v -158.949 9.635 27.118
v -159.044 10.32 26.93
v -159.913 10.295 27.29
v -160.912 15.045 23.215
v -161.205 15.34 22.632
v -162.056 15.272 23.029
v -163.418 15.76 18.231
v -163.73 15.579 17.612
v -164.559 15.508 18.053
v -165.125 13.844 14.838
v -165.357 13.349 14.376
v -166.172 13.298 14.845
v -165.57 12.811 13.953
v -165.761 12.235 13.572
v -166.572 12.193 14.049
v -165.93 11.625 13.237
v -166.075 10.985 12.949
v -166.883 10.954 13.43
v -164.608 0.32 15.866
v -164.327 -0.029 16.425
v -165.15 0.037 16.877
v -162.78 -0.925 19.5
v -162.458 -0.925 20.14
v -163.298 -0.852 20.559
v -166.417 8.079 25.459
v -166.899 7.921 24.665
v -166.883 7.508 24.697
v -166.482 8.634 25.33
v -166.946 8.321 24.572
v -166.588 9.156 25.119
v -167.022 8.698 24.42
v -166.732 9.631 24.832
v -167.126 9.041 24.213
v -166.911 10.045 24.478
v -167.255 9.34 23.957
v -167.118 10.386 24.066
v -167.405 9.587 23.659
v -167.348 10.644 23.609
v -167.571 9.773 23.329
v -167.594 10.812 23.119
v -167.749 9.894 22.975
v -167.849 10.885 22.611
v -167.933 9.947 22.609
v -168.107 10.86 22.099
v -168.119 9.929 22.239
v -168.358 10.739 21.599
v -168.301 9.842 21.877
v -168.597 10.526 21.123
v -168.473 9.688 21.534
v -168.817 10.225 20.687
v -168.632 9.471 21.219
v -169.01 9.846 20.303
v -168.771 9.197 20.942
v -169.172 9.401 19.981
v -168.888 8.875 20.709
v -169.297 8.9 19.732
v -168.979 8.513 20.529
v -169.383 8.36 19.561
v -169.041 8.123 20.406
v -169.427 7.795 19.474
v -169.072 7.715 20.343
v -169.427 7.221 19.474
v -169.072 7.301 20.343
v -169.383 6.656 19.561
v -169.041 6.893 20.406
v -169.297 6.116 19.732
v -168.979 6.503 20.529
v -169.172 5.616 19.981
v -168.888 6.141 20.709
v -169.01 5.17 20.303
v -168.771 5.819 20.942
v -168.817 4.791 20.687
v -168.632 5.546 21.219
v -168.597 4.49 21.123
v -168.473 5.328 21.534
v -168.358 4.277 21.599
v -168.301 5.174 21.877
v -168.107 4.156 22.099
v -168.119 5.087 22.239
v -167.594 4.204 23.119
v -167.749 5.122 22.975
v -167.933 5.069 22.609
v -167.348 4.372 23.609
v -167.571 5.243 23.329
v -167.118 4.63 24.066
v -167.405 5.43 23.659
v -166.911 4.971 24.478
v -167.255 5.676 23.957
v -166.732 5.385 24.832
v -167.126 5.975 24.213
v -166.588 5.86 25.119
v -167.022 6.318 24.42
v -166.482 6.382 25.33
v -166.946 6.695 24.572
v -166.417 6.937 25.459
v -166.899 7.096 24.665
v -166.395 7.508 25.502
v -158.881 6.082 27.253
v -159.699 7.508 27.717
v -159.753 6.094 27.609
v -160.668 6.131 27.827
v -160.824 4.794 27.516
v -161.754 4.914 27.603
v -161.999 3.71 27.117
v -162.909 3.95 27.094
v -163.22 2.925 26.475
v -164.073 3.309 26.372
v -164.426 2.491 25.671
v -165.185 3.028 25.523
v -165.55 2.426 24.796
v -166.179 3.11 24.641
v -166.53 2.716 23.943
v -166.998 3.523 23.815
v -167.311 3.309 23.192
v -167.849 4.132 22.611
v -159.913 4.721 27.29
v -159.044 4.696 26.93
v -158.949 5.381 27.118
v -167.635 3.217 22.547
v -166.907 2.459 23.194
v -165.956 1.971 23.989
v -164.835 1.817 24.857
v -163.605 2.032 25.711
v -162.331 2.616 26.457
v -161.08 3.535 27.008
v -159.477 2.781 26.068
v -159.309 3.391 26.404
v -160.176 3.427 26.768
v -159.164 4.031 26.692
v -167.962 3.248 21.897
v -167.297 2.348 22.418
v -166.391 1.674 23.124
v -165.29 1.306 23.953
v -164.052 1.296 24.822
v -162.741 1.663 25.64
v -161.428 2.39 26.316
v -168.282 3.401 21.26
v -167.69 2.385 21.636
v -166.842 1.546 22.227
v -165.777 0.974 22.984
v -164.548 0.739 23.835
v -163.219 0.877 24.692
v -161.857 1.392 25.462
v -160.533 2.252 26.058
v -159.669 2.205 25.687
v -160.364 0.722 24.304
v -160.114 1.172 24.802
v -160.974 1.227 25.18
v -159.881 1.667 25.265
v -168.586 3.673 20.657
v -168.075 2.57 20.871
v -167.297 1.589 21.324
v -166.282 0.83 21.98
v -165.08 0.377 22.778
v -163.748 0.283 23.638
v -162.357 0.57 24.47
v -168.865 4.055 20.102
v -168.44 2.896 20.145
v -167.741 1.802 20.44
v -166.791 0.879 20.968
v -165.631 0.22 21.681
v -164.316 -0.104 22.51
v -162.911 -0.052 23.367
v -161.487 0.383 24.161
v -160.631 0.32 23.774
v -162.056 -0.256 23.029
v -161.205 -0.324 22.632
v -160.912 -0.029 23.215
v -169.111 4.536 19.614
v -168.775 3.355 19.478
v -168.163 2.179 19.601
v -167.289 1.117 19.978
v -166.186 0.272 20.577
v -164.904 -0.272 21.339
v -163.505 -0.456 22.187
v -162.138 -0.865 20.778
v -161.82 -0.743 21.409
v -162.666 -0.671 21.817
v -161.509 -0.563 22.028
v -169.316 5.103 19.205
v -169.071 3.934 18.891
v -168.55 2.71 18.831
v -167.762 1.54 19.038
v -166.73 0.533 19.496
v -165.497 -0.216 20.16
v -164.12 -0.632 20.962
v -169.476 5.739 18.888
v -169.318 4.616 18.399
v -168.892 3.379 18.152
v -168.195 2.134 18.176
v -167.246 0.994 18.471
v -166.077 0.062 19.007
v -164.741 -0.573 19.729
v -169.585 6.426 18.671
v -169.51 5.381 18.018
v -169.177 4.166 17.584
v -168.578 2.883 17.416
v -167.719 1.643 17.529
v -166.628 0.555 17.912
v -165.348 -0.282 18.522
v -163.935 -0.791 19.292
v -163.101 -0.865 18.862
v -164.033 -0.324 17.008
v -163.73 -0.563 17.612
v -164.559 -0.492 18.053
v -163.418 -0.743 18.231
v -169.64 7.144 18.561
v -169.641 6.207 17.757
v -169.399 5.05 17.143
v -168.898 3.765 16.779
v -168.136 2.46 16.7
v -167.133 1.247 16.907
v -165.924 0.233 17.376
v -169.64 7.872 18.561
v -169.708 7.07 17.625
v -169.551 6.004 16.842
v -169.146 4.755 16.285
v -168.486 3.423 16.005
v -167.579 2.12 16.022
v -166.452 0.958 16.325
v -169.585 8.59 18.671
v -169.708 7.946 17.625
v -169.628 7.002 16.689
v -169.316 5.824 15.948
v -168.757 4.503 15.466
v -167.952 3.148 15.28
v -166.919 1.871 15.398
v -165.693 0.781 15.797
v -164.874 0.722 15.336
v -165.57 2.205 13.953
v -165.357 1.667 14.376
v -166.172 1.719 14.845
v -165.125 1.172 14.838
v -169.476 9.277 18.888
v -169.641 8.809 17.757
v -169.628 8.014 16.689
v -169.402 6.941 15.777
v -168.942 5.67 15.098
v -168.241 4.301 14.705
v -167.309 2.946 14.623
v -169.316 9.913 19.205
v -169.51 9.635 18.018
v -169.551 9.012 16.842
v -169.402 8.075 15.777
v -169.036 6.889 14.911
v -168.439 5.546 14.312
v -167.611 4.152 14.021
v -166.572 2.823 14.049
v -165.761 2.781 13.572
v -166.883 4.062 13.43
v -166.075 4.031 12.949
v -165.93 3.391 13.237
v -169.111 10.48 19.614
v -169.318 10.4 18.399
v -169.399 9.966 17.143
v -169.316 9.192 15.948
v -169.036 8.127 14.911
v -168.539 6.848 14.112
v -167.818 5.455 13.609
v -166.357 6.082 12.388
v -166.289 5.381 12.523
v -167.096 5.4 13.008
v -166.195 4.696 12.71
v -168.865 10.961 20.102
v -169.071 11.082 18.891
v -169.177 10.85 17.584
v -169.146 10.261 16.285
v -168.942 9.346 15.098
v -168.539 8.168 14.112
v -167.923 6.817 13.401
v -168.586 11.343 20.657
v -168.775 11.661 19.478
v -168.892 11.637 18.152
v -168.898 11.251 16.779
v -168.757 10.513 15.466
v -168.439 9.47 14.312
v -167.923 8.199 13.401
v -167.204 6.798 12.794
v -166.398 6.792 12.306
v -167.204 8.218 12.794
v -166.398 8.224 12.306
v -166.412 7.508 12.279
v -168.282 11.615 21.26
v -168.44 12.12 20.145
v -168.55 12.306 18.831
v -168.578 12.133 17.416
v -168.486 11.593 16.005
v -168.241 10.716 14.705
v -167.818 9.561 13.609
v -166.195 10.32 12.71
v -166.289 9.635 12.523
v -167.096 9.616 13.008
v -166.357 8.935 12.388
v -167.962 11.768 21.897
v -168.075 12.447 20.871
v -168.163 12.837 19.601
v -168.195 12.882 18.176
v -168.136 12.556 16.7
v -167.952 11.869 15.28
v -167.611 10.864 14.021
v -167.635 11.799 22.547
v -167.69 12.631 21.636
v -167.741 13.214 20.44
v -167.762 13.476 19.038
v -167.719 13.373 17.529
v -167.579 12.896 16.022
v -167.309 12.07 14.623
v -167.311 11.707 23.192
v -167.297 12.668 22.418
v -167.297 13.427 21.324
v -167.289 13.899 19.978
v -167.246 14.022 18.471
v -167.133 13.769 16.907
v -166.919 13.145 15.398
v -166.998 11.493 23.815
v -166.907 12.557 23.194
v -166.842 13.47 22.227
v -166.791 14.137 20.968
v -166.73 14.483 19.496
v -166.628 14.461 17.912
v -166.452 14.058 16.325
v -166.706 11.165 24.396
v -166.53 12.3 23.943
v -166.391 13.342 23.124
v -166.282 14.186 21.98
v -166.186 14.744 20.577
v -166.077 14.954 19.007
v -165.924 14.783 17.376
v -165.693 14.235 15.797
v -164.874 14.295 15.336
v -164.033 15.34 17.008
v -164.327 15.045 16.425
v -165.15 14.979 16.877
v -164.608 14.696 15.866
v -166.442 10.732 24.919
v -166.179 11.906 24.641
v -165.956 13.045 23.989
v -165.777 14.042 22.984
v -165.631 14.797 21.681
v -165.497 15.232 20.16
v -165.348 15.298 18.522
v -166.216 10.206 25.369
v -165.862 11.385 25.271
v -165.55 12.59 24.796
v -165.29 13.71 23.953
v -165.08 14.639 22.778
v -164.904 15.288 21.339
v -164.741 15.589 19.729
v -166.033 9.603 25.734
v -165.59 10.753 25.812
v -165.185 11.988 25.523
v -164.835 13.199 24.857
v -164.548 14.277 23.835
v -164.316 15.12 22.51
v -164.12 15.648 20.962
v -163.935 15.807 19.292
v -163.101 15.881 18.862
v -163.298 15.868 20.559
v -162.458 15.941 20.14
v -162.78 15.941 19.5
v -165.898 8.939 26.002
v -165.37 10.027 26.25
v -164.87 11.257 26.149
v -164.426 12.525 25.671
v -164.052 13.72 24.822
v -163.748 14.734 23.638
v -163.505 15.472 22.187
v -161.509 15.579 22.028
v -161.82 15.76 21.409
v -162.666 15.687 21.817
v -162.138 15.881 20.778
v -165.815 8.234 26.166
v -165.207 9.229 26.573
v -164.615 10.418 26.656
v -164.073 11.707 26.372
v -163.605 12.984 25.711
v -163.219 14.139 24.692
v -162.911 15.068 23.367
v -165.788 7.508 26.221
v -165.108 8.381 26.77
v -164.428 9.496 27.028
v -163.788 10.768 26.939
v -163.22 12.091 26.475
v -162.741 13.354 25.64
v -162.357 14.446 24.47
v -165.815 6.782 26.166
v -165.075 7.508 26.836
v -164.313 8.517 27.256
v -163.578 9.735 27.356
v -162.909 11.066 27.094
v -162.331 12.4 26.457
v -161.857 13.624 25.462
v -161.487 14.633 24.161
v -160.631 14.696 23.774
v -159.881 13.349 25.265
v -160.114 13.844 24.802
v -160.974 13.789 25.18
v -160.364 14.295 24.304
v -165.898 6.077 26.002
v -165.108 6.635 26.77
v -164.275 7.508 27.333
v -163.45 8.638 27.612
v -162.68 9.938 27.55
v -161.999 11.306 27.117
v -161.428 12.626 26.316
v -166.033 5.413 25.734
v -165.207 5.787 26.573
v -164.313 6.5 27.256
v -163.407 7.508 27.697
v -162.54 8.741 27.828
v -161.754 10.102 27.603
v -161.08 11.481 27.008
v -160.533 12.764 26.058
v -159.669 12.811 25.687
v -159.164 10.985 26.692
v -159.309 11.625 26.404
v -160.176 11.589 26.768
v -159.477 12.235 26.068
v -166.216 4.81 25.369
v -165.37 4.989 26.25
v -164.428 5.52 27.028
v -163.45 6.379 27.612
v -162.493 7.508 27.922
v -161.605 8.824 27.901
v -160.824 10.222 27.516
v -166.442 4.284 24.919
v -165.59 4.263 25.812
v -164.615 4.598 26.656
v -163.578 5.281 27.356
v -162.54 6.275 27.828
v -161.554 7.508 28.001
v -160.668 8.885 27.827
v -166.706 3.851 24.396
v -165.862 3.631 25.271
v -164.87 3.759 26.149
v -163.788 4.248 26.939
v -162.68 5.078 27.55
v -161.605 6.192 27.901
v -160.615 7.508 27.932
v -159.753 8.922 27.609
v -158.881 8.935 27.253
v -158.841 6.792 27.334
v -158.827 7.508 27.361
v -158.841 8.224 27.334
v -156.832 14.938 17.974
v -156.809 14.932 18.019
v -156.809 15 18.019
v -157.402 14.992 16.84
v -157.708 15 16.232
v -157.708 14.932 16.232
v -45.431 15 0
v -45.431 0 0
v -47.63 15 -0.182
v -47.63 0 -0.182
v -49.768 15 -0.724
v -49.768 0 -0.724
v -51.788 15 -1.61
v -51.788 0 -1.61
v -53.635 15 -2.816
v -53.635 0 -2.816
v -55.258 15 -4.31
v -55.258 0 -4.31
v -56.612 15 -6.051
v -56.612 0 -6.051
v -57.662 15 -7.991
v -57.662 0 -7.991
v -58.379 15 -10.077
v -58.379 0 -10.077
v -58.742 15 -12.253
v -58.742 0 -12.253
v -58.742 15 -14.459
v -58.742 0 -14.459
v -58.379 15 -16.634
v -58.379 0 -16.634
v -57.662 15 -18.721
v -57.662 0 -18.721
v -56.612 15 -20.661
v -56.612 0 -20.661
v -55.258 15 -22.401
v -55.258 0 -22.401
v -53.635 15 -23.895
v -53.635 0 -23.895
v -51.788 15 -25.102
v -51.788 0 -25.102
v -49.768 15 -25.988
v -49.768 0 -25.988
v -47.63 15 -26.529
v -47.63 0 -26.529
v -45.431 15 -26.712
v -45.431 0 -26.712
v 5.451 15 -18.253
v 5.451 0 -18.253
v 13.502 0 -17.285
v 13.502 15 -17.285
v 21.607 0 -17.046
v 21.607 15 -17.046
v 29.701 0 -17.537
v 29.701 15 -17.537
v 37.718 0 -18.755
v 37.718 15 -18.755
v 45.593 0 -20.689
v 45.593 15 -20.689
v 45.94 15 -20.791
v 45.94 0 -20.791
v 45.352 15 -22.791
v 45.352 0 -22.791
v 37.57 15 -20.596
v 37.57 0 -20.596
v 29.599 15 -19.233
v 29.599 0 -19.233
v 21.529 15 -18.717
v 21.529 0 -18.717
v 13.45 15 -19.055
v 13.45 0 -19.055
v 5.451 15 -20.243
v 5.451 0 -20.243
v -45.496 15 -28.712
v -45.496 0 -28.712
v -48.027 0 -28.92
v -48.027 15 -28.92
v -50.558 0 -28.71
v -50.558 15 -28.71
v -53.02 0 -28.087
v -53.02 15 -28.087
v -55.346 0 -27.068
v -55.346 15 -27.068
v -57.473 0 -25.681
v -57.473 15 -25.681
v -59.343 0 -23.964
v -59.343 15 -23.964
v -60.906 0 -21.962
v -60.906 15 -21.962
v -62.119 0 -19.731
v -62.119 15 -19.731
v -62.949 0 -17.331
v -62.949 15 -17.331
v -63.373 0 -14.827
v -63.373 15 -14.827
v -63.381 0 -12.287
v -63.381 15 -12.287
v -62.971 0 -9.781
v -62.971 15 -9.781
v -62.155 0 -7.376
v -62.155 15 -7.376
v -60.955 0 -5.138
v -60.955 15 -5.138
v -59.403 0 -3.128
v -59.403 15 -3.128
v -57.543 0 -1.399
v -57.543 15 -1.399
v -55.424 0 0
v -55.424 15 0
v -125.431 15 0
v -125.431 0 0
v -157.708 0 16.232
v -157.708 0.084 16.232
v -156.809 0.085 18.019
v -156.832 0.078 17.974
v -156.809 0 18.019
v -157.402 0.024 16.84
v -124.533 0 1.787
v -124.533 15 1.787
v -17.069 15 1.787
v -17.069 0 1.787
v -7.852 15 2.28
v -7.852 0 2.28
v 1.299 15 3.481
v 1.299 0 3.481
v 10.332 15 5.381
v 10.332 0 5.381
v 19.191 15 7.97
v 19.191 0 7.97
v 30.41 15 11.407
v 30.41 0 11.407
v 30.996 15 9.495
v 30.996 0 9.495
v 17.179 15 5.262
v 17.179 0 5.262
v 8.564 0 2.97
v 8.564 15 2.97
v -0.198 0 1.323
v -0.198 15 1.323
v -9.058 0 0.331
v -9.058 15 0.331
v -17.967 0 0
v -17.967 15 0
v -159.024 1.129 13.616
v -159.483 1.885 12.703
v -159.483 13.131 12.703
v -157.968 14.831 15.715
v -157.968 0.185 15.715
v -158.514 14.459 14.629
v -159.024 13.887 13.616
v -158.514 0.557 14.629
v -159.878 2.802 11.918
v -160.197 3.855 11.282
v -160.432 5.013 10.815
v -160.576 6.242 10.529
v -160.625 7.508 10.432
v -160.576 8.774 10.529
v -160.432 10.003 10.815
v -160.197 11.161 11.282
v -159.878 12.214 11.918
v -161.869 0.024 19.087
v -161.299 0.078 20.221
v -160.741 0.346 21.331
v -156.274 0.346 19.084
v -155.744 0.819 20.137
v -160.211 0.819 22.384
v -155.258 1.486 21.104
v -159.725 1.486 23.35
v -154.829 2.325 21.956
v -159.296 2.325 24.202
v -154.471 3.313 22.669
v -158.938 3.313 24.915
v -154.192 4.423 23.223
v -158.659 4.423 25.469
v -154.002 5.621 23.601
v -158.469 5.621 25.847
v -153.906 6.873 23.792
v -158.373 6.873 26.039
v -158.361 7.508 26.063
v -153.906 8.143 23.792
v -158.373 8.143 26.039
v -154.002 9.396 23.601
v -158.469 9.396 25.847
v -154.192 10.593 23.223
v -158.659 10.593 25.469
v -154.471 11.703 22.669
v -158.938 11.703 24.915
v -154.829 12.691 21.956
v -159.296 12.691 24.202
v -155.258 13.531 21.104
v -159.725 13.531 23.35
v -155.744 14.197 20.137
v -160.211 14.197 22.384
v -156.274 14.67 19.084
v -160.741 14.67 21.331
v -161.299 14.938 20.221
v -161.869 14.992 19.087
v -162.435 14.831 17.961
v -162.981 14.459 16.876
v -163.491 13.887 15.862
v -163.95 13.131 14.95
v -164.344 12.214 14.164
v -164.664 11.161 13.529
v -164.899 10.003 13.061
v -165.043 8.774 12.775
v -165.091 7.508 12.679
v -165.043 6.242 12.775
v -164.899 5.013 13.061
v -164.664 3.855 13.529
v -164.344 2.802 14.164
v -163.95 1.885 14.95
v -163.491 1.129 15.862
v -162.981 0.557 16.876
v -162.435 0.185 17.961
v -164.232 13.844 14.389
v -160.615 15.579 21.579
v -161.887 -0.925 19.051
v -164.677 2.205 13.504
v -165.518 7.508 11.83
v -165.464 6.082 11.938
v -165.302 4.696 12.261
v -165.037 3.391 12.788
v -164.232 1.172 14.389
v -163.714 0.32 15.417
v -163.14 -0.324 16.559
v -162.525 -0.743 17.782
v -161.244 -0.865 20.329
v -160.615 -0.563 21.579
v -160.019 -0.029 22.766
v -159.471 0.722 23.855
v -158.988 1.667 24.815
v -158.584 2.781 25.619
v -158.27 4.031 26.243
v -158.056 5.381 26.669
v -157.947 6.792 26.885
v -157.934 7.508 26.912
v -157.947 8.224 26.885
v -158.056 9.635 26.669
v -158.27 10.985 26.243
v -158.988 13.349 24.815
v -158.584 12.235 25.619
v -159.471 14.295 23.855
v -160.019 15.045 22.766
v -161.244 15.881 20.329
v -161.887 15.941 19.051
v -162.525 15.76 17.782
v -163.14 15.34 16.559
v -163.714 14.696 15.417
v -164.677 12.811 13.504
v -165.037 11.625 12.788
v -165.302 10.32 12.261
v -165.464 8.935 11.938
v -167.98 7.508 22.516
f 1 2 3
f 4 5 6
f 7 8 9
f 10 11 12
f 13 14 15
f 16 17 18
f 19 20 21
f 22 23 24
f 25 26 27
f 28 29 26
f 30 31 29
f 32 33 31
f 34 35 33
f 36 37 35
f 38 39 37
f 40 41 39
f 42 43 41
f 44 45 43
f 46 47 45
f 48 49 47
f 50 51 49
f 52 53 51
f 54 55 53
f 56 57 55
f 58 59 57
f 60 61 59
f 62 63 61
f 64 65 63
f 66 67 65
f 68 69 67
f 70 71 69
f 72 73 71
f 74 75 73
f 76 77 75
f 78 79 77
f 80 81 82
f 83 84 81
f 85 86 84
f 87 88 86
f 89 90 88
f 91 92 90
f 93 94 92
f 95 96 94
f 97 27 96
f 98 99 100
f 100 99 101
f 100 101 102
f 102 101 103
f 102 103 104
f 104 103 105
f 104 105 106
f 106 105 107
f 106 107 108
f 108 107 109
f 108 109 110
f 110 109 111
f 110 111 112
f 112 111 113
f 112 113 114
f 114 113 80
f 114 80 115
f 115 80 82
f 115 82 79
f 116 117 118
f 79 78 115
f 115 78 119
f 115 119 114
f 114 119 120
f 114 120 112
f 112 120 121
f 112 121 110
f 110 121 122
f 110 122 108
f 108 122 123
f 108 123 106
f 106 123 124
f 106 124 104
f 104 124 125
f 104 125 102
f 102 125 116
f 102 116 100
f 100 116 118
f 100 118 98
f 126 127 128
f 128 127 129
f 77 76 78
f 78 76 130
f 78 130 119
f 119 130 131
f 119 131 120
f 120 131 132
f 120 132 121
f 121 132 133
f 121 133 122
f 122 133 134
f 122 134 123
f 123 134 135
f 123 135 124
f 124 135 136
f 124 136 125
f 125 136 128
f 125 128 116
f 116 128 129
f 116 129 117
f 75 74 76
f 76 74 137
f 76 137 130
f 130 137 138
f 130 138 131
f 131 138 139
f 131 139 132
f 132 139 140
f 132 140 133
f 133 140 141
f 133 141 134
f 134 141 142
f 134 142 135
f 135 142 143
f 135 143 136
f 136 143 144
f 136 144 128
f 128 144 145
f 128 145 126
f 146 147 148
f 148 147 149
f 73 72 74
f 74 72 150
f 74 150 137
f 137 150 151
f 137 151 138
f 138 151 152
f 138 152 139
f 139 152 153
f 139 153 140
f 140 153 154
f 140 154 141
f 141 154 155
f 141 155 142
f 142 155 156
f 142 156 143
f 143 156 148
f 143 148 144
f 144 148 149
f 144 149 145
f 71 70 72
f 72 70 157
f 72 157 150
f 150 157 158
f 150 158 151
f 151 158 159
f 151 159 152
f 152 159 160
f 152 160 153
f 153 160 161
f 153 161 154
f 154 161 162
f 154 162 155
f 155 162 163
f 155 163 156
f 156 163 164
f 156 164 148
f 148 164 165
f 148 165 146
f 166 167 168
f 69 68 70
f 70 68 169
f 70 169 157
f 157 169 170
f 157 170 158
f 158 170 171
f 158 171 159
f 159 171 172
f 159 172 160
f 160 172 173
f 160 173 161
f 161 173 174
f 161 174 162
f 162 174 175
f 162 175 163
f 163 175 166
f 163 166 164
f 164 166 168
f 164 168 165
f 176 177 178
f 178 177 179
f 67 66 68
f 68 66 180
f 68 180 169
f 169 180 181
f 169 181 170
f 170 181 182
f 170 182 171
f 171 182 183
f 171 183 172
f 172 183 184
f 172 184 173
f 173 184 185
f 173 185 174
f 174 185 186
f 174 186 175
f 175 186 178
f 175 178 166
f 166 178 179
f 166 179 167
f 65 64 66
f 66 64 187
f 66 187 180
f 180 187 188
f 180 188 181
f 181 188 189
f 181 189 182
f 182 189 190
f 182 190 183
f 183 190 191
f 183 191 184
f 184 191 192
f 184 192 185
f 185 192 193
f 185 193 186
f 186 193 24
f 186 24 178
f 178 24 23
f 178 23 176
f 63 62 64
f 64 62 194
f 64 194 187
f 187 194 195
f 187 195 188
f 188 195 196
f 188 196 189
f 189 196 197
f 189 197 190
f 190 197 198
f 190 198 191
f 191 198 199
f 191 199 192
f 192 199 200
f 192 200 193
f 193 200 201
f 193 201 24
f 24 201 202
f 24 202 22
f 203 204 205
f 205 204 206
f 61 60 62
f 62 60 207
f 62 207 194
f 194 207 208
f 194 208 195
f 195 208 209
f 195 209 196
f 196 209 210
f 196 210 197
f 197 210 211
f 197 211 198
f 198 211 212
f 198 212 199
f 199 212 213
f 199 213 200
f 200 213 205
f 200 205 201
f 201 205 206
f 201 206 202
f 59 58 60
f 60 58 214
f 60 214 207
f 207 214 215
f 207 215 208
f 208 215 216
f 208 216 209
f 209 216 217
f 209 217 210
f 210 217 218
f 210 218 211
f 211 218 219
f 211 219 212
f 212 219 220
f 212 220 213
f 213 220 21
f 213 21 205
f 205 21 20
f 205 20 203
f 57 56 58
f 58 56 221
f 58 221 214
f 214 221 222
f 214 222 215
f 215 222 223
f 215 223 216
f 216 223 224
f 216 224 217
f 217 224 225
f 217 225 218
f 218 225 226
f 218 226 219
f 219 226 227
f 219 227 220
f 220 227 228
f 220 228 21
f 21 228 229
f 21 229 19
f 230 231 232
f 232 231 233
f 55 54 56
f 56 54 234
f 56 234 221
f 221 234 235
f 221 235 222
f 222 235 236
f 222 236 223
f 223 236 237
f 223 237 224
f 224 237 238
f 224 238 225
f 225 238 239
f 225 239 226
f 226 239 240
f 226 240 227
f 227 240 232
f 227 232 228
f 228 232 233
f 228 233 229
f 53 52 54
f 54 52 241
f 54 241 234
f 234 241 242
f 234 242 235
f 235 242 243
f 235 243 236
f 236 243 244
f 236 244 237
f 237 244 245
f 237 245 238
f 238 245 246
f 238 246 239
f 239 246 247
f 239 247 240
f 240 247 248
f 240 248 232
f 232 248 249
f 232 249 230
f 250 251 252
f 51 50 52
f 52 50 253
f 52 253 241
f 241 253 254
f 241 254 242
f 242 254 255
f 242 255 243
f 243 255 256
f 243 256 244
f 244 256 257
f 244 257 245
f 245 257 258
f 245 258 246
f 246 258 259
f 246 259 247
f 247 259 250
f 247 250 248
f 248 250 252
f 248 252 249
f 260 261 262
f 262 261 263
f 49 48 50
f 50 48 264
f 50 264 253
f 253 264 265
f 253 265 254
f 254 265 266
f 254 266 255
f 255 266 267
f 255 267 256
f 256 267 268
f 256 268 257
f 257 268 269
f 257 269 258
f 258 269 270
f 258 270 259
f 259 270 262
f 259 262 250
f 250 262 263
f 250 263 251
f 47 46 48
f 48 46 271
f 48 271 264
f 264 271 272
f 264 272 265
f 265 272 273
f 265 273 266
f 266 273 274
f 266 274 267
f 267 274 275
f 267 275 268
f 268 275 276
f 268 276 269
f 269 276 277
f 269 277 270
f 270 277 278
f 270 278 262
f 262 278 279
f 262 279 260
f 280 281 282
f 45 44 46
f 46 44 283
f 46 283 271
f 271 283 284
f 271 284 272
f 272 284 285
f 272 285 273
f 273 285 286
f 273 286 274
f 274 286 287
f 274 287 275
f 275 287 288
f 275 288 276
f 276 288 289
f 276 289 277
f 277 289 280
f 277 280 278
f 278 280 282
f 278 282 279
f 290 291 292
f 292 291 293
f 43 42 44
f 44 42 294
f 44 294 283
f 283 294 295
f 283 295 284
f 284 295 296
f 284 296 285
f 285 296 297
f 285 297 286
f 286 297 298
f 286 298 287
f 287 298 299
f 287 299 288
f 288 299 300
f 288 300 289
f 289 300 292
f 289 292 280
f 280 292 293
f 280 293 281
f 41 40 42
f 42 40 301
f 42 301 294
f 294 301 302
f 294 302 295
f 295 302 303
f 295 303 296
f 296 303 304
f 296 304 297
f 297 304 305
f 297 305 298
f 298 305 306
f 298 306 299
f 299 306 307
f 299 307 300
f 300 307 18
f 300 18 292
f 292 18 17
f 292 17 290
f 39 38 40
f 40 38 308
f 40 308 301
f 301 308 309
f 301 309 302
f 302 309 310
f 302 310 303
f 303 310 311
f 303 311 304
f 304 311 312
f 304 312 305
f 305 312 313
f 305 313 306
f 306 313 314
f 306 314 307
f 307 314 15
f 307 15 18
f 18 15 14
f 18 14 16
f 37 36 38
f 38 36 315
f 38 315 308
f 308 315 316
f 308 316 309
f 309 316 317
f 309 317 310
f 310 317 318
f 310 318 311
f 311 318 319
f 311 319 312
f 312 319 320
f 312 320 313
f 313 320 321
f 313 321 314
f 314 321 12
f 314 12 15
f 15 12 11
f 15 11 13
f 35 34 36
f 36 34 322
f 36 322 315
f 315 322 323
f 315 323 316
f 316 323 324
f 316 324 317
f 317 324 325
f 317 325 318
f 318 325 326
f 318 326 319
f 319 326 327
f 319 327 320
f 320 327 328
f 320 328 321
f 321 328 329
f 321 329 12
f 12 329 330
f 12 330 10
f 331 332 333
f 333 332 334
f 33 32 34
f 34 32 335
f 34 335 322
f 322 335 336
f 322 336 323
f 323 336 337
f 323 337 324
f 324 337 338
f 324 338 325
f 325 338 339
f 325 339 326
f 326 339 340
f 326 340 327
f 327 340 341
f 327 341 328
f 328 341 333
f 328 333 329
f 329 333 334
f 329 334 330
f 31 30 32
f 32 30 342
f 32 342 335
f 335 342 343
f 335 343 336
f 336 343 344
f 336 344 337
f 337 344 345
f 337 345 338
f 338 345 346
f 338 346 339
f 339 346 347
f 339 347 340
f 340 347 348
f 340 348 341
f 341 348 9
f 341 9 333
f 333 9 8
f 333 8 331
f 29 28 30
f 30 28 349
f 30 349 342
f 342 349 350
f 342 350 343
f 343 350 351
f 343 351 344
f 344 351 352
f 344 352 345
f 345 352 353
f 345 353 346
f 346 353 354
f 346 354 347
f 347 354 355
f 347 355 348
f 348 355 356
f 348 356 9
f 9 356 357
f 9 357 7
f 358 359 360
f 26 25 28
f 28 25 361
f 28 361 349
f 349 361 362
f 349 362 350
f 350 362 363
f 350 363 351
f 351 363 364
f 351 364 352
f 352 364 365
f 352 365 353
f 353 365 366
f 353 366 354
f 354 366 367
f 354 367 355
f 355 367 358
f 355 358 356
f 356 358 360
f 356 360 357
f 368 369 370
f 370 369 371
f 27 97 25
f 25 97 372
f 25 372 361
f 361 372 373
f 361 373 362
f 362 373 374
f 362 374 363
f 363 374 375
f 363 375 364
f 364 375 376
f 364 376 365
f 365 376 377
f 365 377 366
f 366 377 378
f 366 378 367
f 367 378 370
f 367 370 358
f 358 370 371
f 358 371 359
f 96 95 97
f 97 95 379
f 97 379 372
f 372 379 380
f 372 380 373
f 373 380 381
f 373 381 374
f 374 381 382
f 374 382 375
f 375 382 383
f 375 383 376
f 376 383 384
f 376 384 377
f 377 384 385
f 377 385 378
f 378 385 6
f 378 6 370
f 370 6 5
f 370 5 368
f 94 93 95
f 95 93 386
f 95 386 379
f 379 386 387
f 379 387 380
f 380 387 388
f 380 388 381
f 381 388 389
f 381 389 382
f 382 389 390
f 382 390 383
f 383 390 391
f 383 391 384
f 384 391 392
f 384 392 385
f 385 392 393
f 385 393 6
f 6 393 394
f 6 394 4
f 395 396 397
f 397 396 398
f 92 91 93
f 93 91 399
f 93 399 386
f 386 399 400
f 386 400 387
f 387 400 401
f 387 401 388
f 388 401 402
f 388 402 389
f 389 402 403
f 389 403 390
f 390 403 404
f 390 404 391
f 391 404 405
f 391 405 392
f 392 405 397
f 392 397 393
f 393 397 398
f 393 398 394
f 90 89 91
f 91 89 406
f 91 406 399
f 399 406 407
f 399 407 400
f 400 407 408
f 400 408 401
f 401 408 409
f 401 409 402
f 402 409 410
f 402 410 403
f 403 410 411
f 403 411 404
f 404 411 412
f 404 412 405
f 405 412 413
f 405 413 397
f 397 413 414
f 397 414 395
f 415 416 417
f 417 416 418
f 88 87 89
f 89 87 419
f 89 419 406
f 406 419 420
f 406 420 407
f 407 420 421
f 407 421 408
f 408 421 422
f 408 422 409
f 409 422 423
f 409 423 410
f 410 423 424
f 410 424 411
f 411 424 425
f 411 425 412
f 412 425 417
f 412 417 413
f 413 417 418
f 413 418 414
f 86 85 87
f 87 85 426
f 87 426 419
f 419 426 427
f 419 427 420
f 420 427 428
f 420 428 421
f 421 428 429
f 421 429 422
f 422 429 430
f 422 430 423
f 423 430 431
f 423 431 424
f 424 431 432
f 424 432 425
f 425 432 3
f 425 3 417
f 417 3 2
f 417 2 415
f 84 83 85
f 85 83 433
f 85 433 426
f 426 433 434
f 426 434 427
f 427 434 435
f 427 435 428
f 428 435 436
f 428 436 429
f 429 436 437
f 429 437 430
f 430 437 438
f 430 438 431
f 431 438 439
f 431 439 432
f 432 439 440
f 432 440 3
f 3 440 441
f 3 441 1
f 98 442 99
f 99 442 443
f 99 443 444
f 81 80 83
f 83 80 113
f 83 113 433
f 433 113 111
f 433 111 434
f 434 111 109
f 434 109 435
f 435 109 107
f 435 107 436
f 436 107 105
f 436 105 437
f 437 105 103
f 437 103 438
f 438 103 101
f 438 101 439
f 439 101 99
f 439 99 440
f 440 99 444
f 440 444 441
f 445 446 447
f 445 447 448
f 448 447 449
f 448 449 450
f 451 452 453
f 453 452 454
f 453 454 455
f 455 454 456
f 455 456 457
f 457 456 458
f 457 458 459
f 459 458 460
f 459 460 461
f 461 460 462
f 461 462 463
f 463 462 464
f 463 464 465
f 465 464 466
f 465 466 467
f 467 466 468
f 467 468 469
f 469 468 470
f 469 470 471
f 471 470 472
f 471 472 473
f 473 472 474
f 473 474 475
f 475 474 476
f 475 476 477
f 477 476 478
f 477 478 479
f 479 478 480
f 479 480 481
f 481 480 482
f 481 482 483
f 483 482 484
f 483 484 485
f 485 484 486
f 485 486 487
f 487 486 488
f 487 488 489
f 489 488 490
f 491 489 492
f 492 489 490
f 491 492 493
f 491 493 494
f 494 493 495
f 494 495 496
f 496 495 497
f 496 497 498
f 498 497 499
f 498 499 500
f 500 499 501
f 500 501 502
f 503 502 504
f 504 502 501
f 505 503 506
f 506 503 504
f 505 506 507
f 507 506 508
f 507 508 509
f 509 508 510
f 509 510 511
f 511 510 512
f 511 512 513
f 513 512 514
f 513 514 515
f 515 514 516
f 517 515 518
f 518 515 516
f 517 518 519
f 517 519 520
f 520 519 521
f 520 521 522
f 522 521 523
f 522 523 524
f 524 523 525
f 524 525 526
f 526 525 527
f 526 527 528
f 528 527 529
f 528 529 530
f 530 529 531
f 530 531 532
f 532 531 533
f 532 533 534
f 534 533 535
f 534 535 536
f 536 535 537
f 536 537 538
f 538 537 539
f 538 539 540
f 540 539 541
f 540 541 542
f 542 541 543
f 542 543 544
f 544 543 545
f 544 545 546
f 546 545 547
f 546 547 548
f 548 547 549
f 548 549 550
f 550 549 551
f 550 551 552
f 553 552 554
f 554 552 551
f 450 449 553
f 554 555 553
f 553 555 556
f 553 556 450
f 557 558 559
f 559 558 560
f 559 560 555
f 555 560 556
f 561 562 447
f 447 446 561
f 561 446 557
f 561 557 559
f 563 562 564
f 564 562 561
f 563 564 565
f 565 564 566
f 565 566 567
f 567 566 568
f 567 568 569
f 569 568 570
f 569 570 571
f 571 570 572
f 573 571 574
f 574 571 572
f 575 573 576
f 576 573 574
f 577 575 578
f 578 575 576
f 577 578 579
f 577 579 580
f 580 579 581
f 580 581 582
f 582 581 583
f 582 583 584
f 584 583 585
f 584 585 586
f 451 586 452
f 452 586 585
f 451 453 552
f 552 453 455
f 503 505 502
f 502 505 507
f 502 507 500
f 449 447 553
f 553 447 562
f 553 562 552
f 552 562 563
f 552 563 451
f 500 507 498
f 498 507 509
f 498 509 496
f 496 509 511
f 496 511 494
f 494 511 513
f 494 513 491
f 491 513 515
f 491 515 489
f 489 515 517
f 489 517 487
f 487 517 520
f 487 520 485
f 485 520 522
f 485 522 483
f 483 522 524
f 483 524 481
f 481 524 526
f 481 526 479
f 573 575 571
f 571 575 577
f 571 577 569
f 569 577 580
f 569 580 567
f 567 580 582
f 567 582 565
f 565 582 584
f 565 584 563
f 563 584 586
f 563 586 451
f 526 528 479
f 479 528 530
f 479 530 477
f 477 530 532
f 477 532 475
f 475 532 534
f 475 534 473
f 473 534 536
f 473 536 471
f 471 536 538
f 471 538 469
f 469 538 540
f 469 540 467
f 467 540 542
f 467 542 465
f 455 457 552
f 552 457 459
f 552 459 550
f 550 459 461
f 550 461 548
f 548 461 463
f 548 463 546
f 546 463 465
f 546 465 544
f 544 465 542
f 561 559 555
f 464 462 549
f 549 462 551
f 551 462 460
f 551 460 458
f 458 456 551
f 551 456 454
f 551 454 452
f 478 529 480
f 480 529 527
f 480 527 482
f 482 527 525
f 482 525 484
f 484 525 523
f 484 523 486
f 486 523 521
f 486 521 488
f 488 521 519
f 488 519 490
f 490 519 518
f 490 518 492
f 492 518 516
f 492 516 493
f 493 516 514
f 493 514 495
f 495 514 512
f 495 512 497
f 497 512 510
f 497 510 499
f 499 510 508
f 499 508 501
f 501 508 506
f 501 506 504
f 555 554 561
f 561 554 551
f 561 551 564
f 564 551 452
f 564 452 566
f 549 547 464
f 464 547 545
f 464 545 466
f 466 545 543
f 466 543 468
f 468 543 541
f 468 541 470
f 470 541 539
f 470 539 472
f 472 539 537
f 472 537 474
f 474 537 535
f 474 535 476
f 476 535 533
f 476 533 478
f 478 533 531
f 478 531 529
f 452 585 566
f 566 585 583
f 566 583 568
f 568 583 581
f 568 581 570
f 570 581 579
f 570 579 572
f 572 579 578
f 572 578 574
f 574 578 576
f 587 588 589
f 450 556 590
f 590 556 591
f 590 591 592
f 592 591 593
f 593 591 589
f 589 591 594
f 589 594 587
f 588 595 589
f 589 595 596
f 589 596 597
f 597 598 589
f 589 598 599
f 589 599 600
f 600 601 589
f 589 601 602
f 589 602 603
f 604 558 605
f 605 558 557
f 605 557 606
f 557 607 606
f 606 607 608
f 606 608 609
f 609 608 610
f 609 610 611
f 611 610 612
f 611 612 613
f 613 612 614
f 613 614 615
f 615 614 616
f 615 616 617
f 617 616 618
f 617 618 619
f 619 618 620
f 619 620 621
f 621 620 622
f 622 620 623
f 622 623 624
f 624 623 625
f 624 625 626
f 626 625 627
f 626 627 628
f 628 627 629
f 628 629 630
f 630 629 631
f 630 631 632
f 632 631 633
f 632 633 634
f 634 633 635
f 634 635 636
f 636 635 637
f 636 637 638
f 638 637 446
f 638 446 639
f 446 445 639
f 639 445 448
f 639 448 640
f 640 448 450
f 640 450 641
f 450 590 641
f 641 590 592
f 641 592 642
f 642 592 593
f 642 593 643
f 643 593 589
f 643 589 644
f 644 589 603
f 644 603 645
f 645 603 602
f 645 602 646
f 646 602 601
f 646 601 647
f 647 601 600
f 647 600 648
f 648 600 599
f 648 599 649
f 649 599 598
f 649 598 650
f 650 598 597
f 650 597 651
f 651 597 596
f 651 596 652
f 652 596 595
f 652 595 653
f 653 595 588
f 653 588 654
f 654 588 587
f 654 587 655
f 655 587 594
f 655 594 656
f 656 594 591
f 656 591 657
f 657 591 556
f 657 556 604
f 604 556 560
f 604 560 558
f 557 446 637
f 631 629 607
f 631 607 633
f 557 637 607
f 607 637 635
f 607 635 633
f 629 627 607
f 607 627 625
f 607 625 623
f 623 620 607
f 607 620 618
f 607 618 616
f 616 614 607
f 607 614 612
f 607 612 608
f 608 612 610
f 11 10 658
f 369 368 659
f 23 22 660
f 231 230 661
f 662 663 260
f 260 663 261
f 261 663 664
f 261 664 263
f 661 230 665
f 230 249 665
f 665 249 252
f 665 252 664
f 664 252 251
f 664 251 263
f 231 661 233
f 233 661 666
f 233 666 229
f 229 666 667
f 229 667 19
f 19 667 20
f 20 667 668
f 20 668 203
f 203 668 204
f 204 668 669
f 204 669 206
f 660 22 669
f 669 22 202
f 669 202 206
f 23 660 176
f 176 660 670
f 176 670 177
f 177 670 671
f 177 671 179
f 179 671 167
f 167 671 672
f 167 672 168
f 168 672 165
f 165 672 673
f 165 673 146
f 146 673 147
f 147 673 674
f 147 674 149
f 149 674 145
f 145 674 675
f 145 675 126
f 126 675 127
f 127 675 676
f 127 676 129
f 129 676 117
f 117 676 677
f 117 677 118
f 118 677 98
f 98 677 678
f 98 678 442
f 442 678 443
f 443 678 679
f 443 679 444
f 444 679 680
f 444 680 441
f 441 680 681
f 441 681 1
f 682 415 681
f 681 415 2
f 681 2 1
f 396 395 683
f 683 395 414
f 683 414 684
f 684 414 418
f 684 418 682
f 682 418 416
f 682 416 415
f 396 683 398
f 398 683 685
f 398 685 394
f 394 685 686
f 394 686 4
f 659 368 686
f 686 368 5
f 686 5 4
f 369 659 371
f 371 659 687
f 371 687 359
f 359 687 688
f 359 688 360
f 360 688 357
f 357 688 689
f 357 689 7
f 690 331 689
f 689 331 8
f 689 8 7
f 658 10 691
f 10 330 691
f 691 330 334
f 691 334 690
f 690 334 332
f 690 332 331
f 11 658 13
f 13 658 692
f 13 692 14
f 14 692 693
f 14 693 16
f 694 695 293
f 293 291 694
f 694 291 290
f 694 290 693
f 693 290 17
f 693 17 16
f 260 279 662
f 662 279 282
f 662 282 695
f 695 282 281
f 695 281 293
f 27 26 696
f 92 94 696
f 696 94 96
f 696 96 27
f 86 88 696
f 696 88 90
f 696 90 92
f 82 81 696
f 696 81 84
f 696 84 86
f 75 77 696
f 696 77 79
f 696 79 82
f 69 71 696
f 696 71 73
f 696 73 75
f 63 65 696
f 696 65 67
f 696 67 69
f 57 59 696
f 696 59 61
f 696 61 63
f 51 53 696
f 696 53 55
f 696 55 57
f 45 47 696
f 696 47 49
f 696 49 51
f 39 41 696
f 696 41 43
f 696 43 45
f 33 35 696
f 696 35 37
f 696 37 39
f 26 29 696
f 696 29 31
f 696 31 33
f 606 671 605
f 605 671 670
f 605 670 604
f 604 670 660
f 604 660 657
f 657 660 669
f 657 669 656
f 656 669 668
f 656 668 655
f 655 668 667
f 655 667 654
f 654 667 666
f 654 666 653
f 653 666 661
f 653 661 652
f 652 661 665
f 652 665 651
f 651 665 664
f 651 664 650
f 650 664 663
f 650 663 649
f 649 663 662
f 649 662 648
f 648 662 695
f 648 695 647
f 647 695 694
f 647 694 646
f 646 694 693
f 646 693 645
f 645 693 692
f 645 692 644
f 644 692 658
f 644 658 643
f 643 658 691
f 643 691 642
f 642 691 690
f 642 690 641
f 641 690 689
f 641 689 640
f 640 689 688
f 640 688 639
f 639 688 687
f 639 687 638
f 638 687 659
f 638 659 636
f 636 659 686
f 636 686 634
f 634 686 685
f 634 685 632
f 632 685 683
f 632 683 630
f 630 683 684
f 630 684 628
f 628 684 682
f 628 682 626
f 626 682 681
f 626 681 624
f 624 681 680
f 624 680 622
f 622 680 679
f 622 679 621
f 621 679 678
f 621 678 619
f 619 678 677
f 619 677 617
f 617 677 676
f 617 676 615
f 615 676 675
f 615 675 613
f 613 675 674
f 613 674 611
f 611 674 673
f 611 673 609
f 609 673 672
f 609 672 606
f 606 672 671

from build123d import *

# Parameters (mm, degrees)
BOSS_EXTRUDE1_DEPTH = 15
SKETCH2_R           = 7.490706033
BOSS_EXTRUDE2_DEPTH = 5
SKETCH3_R           = 8.44094948
BOSS_EXTRUDE3_DEPTH = 7
FILLET1_R           = 1


with BuildPart() as part:
    # Sketch1 → Boss-Extrude1 (new body)
    with BuildSketch(Plane(origin=(0, 0, 0), x_dir=(1, 0, 0), z_dir=(0, 1, 0))):
        with BuildLine():
            Line((-17.967290282, 0), (-45.431439127, 0))
            ThreePointArc((-45.431439127, 0), (-58.787226235, 13.355787108), (-45.431439127, 26.711574216))
            Line((-45.431439127, 26.711574216), (5.45092281, 18.253380544))
            ThreePointArc((5.45092281, 18.253380544), (25.659892843, 17.20031813), (45.593289448, 20.689029929))
            Line((45.593289448, 20.689029929), (45.940338636, 20.791055963))
            Line((45.940338636, 20.791055963), (45.352375673, 22.791055963))
            ThreePointArc((45.352375673, 22.791055963), (25.570805515, 18.868293737), (5.45092281, 20.242666786))
            Line((5.45092281, 20.242666786), (-45.495890395, 28.711574216))
            ThreePointArc((-45.495890395, 28.711574216), (-62.583598174, 18.547920568), (-55.423692083, 0))
            Line((-55.423692083, 0), (-125.431439127, 0))
            Line((-125.431439127, 0), (-157.707883989, -16.232049306))
            Line((-157.707883989, -16.232049306), (-156.809303927, -18.01882122))
            Line((-156.809303927, -18.01882122), (-124.532859065, -1.786771914))
            Line((-124.532859065, -1.786771914), (-17.068710221, -1.786771914))
            ThreePointArc((-17.068710221, -1.786771914), (1.299435065, -3.480980646), (19.190909572, -7.970328534))
            Line((19.190909572, -7.970328534), (30.410309542, -11.40707822))
            Line((30.410309542, -11.40707822), (30.996087081, -9.494785179))
            Line((30.996087081, -9.494785179), (17.179362085, -5.262417546))
            ThreePointArc((17.179362085, -5.262417546), (-0.198073846, -1.322896281), (-17.967290282, 0))
        make_face()
    extrude(amount=BOSS_EXTRUDE1_DEPTH)

    # Sketch2 → Boss-Extrude2 (add)
    with BuildSketch(Plane(origin=(-132.388101561, 0, 66.578899913), x_dir=(0.4492900307338926, 0, 0.8933859570662267), z_dir=(-0.8933859570662267, 0, 0.4492900307338926))):
        with Locations(Location((-55.356167213, 7.508040546, 0), (0, 0, 97.663545488))):
            Circle(SKETCH2_R)
    extrude(amount=BOSS_EXTRUDE2_DEPTH)

    # Sketch3 → Boss-Extrude3 (add)
    with BuildSketch(Plane(origin=(-136.855031347, 0, 68.825350067), x_dir=(0.4492900307338926, 0, 0.8933859570662267), z_dir=(-0.8933859570662267, 0, 0.4492900307338926))):
        with Locations((-55.356167213, 7.508040546)):
            Circle(SKETCH3_R)
    extrude(amount=BOSS_EXTRUDE3_DEPTH)

    # Fillet1
    fillet1_edges = [part.edges().sort_by_distance(p)[0] for p in [
        (-171.772141566, 7.508040546, 14.974932127),
    ]]
    fillet(fillet1_edges, radius=FILLET1_R)

    # Fillet3: read off the stored shape, not the designer's step
    # Fillet3 outline → Fillet3 (revolve, cut)
    with BuildSketch(Plane(origin=(-24.870974068, 7.508040546, -49.454422425), x_dir=(0.4492900307338924, 0, 0.8933859570662267), z_dir=(0, 1, 0))):
        with BuildLine():
            Line((8.44094948, -159.186906806), (8.44094948, -154.186906806))
            ThreePointArc((8.44094948, -154.186906806), (6.683590167, -158.429547493), (2.44094948, -160.186906806))
            Line((2.44094948, -160.186906806), (7.44094948, -160.186906806))
            ThreePointArc((7.44094948, -160.186906806), (8.148056261, -159.894013587), (8.44094948, -159.186906806))
        make_face()
    revolve(axis=Axis((-24.870974068, 7.508040546, -49.454422425), (0.8933859570662267, 0, -0.4492900307338924)), mode=Mode.SUBTRACT)


solid = part.part
